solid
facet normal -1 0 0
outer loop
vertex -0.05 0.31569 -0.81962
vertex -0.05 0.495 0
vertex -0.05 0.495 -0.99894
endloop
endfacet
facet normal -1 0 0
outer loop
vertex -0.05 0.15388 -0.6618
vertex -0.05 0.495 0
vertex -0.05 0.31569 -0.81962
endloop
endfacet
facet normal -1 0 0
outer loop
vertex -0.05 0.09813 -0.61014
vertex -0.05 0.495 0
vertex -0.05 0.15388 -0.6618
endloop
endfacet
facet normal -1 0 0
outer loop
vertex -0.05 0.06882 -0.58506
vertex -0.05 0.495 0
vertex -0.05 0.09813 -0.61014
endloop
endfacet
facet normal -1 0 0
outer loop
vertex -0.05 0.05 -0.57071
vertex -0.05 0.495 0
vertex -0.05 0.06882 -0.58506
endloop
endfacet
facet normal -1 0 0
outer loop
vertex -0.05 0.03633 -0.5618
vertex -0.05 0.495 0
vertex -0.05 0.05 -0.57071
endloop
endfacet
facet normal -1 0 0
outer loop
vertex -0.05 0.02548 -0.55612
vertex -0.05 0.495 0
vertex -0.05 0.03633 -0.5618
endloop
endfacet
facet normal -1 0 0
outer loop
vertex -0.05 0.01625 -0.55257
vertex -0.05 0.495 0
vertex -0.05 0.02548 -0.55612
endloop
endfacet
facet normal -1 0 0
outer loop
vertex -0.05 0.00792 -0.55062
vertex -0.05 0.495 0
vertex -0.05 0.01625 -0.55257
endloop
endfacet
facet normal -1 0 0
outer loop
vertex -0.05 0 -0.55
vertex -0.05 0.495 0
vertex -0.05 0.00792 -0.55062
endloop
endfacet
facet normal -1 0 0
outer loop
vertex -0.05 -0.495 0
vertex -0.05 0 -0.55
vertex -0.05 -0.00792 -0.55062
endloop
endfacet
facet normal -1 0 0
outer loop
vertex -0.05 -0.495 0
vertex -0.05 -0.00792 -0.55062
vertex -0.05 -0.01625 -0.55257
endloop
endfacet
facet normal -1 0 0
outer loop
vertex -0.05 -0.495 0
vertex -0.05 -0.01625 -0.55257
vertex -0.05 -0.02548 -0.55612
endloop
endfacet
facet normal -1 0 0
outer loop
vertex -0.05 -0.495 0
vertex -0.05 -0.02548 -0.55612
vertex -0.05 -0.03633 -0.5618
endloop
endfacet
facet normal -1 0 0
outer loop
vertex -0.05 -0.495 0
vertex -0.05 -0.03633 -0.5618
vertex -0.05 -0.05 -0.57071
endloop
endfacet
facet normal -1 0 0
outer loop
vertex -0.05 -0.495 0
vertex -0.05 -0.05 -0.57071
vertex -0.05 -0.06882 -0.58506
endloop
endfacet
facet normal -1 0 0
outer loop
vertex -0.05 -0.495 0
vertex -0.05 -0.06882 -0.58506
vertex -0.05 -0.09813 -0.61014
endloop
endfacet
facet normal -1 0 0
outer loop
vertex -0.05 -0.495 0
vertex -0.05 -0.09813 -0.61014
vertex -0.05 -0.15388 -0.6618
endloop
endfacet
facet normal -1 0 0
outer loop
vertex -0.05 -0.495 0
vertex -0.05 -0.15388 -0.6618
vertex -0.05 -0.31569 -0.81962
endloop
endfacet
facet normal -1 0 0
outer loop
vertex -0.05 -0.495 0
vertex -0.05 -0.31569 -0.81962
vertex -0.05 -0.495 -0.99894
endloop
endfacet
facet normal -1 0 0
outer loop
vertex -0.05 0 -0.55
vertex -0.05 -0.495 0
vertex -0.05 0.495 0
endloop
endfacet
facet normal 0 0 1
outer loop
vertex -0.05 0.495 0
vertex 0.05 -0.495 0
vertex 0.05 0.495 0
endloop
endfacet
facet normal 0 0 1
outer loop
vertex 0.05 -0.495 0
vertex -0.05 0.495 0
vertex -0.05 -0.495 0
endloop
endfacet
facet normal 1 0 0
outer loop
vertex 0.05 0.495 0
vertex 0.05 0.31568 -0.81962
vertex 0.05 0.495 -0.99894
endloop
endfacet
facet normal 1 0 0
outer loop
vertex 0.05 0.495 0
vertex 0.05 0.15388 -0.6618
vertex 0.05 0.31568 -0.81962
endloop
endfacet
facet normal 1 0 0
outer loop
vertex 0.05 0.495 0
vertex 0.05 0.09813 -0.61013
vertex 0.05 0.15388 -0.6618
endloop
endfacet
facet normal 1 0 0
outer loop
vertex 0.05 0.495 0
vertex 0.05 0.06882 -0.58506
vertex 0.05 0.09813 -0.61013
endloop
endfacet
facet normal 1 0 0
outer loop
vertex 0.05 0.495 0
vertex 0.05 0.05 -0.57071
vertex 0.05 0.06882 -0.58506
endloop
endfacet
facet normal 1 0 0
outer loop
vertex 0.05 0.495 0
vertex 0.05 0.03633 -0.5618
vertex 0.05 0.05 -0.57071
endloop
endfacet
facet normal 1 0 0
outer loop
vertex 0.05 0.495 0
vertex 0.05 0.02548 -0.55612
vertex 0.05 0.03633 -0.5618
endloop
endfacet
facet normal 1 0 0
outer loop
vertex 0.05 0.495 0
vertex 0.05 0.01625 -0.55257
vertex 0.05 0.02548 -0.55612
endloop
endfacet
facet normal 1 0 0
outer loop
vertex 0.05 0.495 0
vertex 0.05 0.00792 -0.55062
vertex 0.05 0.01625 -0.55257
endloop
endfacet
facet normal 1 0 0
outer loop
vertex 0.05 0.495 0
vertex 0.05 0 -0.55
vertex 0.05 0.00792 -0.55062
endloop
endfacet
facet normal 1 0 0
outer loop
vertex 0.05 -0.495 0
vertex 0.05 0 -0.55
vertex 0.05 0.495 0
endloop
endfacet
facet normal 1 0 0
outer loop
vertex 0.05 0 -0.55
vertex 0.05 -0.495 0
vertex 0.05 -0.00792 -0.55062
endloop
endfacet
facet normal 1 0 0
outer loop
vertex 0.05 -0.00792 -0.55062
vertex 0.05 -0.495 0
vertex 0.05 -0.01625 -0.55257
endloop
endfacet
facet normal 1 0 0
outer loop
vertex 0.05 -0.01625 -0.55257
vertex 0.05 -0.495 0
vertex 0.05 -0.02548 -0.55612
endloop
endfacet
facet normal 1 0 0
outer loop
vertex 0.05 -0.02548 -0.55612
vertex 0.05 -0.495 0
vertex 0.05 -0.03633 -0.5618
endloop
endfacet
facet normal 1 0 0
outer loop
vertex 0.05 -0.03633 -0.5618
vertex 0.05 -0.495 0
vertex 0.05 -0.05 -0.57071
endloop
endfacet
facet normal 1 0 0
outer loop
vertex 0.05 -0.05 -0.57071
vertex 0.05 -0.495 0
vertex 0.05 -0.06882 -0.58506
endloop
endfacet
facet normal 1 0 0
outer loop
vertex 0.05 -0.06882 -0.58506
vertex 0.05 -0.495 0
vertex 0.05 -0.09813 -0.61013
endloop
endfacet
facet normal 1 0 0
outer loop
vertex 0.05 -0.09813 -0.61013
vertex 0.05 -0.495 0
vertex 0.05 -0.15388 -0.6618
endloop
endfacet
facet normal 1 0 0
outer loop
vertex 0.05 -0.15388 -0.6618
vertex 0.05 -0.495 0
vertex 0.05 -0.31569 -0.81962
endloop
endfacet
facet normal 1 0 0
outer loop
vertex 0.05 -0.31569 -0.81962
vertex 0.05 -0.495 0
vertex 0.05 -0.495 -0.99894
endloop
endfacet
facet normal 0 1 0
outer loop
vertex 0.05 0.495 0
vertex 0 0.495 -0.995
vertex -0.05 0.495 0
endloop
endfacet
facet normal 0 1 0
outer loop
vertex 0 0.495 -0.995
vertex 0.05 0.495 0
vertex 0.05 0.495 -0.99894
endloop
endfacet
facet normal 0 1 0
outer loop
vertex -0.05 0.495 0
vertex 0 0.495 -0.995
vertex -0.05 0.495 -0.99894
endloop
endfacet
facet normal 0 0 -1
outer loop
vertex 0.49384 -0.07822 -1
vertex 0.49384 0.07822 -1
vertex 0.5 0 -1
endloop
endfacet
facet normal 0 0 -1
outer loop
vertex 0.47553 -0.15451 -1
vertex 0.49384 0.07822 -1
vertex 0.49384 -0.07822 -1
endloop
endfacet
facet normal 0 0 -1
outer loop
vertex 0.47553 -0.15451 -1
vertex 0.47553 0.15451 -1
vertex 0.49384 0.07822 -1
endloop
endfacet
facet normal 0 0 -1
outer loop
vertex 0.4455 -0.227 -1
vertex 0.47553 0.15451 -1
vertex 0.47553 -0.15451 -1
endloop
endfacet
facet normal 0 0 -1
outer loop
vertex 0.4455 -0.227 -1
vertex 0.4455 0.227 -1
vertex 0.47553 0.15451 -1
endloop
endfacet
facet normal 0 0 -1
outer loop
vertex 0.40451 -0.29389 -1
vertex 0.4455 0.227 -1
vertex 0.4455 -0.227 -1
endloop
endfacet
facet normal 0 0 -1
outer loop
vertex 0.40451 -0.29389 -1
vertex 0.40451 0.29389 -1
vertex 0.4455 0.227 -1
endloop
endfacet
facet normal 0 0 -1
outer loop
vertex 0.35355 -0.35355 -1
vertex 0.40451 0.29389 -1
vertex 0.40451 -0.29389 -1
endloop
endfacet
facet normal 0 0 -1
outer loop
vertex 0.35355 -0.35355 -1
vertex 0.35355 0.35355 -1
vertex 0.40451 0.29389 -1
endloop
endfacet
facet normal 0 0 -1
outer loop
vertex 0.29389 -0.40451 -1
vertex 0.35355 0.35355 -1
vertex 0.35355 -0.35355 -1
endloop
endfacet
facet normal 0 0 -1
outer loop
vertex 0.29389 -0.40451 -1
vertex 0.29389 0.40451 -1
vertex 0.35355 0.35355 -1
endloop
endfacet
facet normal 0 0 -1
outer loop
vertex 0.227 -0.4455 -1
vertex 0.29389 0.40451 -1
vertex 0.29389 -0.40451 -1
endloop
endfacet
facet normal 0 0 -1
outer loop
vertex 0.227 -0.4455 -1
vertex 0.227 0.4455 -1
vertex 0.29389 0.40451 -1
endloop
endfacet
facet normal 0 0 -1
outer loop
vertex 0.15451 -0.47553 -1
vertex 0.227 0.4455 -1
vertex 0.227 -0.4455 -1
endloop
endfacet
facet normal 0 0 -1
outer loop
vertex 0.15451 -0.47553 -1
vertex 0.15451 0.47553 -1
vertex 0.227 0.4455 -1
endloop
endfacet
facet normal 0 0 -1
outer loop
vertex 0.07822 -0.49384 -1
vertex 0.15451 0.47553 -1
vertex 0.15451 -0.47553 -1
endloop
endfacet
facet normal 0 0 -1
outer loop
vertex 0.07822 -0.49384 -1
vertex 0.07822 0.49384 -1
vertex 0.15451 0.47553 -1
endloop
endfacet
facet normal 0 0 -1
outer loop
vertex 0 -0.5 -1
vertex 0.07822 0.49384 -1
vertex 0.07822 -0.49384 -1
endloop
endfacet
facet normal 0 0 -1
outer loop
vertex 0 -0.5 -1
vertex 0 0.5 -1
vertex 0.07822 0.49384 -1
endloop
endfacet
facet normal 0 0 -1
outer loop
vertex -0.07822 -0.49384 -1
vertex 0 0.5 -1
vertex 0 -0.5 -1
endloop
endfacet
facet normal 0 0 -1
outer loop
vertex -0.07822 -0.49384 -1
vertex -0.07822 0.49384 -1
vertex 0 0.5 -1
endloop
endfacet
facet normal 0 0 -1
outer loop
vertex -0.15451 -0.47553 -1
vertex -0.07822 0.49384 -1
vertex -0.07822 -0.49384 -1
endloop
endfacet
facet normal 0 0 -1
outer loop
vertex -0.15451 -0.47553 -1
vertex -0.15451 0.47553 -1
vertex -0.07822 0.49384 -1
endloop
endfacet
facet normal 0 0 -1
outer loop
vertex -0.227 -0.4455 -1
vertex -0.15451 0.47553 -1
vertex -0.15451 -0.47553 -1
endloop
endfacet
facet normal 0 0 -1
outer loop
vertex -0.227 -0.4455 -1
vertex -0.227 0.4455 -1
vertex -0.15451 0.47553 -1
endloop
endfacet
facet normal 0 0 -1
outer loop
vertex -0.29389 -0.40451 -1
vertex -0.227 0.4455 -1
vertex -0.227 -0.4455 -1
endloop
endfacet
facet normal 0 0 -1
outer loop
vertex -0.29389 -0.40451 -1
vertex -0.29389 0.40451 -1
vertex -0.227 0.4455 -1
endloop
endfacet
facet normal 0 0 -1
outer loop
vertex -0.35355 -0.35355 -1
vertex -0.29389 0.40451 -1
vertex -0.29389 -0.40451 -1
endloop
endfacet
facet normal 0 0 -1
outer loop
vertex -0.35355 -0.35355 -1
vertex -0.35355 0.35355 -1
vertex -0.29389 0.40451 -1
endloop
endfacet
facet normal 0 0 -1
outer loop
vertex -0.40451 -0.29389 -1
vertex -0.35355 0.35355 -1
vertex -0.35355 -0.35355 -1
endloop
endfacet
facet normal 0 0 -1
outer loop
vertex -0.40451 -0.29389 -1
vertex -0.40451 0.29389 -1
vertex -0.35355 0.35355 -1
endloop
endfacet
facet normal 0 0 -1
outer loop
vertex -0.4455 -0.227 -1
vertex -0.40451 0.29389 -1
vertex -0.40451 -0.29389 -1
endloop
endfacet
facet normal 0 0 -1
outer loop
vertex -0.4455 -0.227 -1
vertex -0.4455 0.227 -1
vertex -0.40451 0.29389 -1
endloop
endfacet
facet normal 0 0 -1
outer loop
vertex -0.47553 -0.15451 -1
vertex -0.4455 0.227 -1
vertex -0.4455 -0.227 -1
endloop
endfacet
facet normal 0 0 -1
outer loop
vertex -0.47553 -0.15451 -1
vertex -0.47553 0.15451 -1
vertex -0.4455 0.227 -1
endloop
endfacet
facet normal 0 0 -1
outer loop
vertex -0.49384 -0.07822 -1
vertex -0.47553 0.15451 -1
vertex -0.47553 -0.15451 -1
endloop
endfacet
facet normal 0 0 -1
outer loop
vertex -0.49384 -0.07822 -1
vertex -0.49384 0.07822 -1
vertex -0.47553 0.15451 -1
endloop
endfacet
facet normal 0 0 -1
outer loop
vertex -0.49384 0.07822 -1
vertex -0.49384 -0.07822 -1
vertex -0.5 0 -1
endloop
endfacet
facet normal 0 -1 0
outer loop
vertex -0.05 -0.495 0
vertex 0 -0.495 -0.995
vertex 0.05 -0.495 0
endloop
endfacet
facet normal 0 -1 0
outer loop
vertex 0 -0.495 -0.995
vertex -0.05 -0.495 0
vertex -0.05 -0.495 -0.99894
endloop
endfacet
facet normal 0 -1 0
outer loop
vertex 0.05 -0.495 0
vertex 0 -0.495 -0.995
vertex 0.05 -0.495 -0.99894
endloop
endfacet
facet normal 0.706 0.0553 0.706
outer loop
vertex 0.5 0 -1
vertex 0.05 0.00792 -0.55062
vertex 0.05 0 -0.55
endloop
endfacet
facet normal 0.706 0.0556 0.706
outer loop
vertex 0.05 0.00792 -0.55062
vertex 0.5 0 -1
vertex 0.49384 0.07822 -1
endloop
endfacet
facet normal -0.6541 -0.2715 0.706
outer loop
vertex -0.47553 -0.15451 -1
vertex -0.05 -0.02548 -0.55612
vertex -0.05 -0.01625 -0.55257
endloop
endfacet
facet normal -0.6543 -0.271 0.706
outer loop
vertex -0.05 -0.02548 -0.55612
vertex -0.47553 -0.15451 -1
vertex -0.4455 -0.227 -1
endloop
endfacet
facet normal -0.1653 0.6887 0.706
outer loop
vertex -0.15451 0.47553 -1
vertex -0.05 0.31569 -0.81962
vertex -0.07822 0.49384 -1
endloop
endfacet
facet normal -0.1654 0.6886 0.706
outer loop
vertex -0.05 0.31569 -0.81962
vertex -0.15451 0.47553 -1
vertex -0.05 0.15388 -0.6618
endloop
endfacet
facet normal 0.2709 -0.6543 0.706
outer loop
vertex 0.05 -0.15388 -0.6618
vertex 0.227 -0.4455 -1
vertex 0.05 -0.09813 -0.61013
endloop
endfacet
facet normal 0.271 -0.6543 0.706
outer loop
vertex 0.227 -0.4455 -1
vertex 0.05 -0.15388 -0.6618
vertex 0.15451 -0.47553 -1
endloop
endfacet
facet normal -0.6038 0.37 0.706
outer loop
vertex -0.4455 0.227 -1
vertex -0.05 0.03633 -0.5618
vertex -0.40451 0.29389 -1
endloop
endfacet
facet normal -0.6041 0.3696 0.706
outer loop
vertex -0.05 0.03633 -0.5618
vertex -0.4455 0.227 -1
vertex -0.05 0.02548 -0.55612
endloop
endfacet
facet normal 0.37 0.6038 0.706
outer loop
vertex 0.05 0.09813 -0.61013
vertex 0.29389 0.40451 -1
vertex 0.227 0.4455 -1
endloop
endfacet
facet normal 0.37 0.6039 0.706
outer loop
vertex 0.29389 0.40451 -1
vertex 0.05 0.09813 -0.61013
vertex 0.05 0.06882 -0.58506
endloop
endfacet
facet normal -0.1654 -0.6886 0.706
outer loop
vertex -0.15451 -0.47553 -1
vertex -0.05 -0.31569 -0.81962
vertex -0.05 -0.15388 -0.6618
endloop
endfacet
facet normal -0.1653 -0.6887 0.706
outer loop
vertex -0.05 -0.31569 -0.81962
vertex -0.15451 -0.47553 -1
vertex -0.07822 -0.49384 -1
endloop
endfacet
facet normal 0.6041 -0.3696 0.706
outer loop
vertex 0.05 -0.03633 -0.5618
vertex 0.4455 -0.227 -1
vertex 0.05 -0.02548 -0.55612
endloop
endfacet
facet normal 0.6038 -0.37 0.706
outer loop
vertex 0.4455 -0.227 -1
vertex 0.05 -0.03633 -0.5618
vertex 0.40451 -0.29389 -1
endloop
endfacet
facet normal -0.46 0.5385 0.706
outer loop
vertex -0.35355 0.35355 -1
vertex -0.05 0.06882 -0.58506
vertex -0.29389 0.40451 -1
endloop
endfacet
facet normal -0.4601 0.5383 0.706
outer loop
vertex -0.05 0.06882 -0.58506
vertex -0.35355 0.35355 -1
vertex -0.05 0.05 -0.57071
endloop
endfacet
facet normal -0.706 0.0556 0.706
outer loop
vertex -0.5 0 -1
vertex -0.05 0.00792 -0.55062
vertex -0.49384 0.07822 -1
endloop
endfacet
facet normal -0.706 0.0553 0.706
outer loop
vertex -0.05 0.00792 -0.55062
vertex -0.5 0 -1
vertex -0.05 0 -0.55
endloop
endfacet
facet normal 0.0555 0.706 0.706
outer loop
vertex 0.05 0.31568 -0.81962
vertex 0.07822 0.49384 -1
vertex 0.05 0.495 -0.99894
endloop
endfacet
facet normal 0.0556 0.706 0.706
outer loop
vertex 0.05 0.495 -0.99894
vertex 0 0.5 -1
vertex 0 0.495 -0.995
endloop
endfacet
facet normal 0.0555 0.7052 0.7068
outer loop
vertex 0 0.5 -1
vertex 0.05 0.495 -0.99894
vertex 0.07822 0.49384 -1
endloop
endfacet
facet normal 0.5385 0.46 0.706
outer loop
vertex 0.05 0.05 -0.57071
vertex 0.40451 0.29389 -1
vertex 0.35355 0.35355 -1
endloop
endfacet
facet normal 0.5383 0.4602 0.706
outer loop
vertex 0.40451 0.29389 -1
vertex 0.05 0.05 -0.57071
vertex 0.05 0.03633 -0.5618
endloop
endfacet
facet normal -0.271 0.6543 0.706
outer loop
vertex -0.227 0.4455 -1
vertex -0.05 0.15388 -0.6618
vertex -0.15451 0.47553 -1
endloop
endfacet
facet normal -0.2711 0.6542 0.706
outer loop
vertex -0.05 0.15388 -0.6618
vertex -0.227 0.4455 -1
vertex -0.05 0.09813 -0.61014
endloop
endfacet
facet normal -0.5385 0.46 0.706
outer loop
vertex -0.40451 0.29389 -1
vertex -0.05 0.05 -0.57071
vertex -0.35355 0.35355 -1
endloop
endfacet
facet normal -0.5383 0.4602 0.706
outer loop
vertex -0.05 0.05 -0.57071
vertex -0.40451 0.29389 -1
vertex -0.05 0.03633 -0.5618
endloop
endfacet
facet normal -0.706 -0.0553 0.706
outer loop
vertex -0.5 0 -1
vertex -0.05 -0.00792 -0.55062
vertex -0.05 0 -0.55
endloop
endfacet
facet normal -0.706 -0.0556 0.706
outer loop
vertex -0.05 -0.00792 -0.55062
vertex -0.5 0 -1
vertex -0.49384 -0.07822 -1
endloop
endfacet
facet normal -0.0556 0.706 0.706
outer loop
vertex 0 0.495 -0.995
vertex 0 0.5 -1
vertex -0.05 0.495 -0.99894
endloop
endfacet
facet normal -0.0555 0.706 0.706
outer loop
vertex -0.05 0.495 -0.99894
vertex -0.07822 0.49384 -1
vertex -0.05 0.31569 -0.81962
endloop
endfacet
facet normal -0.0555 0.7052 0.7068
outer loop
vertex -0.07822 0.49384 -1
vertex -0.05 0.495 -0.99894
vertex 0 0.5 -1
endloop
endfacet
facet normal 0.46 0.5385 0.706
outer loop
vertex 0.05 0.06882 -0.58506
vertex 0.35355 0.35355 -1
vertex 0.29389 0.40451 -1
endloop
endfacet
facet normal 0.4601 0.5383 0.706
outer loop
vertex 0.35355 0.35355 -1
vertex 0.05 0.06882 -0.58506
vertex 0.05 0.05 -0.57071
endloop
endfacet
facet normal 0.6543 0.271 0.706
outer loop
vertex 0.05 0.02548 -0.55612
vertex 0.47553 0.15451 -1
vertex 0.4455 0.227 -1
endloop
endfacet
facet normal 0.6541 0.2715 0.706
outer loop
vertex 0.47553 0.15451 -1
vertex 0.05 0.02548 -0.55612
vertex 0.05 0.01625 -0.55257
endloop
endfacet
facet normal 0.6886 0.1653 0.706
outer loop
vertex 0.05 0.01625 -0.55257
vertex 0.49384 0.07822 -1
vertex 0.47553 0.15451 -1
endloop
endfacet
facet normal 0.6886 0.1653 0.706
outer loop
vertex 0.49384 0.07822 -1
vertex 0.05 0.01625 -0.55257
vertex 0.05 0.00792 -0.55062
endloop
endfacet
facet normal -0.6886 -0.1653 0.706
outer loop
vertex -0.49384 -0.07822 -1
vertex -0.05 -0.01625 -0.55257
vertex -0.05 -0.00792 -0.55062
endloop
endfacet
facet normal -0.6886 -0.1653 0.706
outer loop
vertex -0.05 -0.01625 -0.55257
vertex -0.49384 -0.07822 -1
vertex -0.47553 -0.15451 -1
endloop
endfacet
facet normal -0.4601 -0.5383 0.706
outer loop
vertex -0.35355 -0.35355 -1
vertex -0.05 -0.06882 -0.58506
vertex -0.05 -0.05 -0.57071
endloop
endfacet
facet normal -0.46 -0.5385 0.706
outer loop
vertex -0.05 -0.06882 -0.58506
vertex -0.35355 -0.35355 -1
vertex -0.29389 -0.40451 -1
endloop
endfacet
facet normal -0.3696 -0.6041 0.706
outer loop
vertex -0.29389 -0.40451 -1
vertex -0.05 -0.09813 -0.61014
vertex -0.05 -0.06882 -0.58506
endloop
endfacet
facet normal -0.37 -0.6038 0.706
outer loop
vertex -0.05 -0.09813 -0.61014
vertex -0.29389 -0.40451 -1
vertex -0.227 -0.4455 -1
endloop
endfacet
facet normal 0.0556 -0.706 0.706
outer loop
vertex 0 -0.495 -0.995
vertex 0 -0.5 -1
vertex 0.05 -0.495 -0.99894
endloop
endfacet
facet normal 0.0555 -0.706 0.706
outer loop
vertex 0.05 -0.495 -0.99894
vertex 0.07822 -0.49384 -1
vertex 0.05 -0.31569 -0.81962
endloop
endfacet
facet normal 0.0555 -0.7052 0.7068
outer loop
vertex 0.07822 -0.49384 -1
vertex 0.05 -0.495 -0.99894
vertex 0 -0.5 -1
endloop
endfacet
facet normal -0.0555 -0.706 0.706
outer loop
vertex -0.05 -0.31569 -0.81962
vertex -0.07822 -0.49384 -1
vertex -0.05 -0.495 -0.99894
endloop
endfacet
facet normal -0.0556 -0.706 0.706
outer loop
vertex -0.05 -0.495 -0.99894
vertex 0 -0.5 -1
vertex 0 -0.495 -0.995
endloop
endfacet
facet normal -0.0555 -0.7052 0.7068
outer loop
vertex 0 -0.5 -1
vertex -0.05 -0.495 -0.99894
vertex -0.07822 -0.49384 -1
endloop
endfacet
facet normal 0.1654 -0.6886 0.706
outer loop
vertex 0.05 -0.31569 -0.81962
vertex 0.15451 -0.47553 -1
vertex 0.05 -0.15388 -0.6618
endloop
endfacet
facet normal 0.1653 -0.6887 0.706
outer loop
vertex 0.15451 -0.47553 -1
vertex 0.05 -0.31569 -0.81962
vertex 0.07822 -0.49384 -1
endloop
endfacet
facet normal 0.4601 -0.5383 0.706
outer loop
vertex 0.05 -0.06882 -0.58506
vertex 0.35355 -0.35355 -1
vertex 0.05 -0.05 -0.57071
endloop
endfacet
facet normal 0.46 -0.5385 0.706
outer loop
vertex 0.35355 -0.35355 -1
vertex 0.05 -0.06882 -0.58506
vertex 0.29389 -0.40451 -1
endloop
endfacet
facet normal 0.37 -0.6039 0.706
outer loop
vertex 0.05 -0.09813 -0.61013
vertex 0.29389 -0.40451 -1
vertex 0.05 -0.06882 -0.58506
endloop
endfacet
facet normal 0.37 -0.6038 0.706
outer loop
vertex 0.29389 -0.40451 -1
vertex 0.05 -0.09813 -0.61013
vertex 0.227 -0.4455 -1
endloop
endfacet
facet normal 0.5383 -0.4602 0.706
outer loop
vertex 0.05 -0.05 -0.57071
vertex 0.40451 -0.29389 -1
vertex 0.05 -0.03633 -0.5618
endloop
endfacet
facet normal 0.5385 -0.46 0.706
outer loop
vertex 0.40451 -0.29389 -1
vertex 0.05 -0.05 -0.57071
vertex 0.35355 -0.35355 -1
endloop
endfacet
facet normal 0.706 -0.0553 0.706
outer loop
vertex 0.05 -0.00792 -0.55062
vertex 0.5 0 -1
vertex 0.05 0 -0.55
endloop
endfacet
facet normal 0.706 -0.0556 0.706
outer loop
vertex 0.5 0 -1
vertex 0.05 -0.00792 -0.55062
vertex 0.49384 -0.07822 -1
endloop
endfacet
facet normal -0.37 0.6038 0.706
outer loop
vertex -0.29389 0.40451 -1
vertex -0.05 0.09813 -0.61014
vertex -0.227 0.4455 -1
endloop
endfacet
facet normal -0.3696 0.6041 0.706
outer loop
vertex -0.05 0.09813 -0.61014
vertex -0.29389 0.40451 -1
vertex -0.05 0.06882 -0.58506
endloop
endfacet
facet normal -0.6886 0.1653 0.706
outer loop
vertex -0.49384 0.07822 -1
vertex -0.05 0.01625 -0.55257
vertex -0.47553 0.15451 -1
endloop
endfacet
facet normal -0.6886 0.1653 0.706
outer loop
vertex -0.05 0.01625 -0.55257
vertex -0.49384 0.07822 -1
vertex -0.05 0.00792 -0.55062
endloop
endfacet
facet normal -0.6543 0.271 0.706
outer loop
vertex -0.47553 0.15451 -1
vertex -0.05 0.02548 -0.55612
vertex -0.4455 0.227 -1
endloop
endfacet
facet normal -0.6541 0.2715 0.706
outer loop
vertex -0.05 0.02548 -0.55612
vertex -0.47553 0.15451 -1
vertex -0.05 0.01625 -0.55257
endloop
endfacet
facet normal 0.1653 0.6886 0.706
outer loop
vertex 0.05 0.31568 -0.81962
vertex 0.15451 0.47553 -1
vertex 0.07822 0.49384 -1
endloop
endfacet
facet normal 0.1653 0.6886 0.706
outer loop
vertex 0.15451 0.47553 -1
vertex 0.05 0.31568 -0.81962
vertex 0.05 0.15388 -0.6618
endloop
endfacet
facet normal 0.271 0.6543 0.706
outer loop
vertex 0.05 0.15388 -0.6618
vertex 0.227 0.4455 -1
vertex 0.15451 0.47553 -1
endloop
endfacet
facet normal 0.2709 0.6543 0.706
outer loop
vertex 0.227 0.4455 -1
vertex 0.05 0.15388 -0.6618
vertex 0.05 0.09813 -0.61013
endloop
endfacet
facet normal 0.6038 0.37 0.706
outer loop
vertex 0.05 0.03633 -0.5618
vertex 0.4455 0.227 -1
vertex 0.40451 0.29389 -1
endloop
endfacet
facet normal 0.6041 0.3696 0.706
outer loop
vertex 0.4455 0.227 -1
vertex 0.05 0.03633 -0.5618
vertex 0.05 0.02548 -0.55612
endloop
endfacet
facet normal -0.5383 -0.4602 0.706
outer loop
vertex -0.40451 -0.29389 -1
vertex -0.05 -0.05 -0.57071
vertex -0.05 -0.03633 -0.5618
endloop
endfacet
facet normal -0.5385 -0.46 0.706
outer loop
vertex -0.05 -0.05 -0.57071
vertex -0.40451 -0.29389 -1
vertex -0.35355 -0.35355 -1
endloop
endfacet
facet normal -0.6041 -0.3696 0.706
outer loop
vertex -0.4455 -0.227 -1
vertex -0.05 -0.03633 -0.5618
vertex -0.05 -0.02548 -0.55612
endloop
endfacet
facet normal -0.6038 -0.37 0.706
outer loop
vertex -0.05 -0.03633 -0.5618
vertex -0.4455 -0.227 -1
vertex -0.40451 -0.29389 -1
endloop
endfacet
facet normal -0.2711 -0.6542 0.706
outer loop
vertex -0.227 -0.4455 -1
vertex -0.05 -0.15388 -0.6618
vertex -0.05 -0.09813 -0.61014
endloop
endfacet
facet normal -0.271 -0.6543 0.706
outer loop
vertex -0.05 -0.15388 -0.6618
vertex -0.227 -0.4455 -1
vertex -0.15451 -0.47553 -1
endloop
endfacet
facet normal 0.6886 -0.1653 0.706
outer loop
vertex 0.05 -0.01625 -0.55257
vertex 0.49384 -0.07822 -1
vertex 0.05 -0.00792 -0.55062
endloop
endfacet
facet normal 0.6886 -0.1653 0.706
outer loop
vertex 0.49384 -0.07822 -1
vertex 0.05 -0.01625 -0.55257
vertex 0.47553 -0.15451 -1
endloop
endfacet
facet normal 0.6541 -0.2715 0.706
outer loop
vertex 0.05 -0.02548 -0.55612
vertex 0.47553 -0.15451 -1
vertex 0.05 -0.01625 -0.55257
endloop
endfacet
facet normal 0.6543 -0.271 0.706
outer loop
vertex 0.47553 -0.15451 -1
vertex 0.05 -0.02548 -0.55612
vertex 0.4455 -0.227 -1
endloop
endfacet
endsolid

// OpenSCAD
//----------------------------------------------
// Section Support 
// Size must be 1 mm height ! 
//----------------------------------------------
$fn=40;

translate([-0.5,-0.5,-0.5]) 
union() {
    translate([0.5,0.5,0.0]) cube([0.1,0.99,1], center = true);
    translate([0.5,0.5,-0.25]) cylinder(h=0.5, r1=0.5, r2=0, center = true);
}
